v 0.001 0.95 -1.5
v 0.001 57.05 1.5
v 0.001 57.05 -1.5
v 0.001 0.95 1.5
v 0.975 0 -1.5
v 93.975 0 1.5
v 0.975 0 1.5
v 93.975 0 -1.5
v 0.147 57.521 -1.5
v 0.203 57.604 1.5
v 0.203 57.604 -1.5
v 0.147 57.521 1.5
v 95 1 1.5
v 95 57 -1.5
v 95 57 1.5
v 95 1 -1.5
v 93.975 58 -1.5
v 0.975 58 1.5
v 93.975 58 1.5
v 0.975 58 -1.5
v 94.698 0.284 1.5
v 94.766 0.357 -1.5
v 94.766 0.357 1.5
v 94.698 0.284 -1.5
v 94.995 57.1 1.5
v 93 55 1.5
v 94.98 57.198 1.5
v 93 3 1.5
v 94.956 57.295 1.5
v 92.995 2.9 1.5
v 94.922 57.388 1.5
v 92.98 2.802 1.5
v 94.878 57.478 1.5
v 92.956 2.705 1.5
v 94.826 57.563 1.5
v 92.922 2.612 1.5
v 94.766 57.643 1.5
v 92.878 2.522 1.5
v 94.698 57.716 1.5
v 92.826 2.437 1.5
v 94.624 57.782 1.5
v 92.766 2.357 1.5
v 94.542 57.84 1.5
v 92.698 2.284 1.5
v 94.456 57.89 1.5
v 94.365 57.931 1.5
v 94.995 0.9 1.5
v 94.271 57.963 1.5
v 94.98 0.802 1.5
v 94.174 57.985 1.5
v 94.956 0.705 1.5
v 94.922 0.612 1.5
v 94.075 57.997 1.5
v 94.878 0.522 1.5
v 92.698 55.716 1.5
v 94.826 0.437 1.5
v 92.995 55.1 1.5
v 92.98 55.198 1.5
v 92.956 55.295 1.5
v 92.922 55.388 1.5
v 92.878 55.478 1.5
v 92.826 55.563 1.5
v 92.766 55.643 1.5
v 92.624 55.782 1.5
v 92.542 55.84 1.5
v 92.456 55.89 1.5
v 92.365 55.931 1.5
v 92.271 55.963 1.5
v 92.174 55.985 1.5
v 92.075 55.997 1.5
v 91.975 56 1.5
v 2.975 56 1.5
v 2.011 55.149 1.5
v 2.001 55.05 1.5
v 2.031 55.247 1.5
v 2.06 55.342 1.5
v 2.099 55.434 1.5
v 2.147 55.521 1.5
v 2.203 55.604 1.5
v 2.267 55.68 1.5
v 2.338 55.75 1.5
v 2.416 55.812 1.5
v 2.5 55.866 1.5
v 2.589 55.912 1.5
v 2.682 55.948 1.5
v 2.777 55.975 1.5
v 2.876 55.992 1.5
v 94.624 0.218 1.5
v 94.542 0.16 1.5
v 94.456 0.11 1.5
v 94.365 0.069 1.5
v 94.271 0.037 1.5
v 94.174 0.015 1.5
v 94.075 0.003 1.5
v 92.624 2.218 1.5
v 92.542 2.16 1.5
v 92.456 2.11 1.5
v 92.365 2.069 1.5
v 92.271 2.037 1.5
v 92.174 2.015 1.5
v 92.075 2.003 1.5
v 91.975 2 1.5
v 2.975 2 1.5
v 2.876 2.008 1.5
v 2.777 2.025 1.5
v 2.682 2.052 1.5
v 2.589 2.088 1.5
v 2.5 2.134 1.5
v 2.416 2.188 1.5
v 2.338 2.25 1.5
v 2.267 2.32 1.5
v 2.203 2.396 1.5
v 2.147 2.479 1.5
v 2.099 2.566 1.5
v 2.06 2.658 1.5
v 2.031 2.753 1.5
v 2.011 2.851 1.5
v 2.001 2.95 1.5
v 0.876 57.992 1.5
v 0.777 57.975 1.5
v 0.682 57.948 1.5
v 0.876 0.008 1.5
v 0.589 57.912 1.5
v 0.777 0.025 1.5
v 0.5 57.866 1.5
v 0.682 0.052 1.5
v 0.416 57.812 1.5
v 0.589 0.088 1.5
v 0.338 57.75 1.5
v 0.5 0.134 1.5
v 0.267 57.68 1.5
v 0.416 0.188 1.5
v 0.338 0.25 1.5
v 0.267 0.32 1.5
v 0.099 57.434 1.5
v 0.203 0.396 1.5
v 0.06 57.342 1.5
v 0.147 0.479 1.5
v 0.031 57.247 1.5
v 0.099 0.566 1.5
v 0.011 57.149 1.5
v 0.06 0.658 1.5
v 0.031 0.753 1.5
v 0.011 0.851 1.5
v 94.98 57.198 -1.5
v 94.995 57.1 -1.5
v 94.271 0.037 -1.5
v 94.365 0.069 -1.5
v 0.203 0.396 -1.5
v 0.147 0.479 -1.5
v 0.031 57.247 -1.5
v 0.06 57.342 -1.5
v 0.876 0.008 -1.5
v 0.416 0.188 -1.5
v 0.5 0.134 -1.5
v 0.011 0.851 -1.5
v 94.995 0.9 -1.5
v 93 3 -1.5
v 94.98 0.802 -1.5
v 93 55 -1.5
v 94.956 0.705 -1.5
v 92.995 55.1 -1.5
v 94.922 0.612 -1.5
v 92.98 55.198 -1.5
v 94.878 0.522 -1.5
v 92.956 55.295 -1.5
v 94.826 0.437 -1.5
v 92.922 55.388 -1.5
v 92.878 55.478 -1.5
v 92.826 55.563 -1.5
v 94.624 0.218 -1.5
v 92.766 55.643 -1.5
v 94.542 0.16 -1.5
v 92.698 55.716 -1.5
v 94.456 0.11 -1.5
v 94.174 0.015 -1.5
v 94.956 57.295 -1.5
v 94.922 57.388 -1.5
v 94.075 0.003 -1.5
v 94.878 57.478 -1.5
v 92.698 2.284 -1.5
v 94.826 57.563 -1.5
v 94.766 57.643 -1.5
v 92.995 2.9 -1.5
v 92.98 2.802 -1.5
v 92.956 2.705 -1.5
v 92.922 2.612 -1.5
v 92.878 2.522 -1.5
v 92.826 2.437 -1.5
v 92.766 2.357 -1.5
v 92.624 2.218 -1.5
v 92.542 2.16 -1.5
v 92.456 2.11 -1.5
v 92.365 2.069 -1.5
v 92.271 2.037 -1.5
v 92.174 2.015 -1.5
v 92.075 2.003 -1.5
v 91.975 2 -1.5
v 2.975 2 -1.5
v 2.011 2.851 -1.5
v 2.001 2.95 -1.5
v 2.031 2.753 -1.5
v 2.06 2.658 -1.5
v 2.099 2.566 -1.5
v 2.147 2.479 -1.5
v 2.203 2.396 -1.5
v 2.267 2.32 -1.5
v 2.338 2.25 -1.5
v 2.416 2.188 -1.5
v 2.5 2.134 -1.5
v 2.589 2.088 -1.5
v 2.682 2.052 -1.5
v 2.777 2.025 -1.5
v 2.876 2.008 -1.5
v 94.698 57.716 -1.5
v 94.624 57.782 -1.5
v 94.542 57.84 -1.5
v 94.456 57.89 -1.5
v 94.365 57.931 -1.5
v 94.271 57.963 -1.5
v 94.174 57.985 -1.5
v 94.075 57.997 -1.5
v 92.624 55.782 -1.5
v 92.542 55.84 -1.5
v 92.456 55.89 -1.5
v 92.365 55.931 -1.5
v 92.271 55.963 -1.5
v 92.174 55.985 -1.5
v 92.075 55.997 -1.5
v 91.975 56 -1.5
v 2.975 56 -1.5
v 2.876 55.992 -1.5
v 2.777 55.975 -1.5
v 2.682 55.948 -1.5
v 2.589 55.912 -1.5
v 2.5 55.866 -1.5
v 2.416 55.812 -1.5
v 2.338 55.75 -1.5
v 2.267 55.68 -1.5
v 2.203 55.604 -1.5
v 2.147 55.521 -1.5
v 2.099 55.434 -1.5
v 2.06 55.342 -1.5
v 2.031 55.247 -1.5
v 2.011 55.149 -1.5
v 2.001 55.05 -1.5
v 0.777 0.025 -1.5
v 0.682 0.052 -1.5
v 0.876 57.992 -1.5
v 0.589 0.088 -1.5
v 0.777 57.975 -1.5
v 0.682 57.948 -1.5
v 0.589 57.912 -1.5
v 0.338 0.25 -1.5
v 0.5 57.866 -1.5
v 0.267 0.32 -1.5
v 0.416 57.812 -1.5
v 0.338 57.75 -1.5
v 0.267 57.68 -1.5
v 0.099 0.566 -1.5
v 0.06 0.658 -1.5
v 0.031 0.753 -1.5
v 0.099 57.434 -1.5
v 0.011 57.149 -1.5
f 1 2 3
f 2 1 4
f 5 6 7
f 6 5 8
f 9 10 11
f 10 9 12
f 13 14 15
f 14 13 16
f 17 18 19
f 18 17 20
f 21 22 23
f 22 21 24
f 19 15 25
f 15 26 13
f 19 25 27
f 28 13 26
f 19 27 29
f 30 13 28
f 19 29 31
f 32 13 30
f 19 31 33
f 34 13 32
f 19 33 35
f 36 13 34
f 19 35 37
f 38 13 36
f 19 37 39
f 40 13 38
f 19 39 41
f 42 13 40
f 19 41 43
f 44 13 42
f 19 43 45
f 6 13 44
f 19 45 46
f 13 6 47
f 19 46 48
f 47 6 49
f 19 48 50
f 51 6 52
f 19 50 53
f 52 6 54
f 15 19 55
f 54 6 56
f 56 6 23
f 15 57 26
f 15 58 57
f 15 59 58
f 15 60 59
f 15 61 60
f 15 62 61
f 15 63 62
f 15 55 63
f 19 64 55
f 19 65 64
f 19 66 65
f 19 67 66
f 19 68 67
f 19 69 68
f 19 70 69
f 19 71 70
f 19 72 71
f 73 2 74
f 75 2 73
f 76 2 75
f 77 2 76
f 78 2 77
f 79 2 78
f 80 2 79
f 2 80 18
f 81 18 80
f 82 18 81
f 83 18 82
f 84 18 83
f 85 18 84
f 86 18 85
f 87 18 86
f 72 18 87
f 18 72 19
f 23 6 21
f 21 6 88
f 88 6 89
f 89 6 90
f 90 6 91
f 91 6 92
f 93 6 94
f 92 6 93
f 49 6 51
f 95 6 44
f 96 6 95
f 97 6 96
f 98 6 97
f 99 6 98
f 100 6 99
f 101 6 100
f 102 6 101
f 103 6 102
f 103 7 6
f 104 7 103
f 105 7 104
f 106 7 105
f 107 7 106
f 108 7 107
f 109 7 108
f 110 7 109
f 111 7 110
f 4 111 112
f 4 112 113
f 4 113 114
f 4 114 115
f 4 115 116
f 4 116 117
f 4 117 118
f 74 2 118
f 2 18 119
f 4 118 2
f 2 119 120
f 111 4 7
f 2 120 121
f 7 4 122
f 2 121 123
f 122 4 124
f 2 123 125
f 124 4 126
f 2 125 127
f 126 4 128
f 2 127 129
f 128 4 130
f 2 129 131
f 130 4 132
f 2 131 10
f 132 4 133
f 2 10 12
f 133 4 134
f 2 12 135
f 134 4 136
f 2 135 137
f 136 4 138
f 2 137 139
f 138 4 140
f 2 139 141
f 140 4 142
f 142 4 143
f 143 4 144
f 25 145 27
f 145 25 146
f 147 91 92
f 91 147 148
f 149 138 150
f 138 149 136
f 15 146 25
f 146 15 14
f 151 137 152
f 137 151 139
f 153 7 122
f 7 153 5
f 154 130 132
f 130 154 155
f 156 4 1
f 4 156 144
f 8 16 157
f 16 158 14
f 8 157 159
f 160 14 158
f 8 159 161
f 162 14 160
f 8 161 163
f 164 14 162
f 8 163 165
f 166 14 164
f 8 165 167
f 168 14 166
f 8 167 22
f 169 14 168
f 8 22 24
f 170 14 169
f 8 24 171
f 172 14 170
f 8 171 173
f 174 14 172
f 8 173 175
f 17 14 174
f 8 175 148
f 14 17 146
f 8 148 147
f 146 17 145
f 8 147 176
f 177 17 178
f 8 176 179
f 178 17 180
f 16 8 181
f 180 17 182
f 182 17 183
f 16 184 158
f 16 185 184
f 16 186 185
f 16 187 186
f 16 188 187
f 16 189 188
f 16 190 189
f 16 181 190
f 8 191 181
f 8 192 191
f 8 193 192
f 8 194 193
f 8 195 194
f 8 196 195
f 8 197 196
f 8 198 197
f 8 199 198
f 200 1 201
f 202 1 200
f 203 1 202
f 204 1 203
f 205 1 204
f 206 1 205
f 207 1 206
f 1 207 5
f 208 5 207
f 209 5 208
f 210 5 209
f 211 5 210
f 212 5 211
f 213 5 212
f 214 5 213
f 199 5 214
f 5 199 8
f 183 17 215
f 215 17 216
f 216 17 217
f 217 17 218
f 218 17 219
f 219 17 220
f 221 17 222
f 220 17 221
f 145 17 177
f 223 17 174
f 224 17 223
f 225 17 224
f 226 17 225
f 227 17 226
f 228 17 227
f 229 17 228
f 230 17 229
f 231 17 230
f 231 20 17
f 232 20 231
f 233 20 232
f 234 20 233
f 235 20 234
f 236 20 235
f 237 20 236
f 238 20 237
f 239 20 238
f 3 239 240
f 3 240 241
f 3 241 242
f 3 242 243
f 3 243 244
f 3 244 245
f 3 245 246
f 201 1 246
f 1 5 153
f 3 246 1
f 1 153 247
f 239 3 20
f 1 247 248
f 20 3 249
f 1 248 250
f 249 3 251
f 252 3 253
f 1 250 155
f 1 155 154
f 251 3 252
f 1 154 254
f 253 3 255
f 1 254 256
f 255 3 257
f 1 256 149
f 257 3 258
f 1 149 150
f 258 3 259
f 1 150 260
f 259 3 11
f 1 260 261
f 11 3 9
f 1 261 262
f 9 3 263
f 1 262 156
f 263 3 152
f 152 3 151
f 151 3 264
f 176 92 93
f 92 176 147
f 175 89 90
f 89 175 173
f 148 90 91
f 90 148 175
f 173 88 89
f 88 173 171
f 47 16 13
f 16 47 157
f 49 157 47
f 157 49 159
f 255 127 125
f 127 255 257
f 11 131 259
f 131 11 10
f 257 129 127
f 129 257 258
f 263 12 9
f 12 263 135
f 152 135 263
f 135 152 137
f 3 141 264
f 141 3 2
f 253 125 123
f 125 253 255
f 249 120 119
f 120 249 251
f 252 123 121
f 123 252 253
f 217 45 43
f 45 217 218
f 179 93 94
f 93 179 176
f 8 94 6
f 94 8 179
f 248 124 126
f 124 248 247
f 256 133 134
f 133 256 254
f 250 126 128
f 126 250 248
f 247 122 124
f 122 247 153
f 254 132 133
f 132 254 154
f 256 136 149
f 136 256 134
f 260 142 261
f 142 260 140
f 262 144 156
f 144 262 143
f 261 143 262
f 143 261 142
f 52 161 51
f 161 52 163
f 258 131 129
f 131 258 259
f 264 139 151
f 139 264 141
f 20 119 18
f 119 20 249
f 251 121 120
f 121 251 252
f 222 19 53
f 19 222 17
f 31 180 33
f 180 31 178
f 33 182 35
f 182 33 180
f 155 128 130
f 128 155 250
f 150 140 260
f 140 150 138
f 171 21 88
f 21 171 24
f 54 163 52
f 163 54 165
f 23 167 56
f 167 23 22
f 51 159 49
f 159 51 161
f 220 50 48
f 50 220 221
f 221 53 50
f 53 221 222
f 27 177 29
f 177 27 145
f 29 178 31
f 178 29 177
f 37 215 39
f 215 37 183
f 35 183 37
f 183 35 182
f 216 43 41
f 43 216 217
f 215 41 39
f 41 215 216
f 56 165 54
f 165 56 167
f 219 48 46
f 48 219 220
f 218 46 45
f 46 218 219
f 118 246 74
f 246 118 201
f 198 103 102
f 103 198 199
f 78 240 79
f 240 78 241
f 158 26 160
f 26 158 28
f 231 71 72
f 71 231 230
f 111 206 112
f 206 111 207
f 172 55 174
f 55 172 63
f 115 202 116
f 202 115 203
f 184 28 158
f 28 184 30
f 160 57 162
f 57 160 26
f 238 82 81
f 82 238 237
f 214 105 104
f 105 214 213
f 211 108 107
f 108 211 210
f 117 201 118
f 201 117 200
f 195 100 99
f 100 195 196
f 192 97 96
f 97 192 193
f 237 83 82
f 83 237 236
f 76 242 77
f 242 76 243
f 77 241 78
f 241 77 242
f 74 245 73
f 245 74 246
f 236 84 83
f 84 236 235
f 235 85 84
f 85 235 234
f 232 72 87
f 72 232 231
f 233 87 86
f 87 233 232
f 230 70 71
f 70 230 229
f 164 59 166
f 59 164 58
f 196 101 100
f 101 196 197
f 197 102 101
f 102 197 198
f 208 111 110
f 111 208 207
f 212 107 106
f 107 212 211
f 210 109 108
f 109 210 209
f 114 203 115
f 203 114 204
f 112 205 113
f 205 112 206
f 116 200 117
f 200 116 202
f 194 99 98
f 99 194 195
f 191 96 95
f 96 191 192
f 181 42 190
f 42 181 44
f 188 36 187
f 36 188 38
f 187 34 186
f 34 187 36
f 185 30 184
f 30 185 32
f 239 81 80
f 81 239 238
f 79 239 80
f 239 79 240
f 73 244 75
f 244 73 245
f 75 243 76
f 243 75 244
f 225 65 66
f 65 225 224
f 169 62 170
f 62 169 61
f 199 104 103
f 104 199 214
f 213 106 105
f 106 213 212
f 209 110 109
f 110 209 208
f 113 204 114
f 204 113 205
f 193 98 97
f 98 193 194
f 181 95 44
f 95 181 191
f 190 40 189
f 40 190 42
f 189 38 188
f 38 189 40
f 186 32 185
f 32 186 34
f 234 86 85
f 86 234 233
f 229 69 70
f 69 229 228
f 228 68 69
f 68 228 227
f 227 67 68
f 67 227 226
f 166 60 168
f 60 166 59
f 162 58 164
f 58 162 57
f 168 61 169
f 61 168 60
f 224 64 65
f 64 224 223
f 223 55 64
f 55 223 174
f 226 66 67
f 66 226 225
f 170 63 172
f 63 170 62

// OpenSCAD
$fa=5; $fs=0.1;

W=95;
H=58;
R=1;


difference(){
    
    union(){
    
        hull(){ //основа
            translate([R,R,0]) cylinder(r=R, h=3, center=true);
            translate([W-R,R,0]) cylinder(r=R, h=3, center=true);
            translate([W-R,H-R,0]) cylinder(r=R, h=3, center=true);
            translate([R,H-R,0]) cylinder(r=R, h=3, center=true);
        }
    }
    
    union(){
        
         hull(){ //вырез
            translate([R+2,R+2,0]) cylinder(r=R, h=3, center=true);
            translate([W-R-2,R+2,0]) cylinder(r=R, h=3, center=true);
            translate([W-R-2,H-R-2,0]) cylinder(r=R, h=3, center=true);
            translate([R+2,H-R-2,0]) cylinder(r=R, h=3, center=true);
        }
       
    }
    
}
